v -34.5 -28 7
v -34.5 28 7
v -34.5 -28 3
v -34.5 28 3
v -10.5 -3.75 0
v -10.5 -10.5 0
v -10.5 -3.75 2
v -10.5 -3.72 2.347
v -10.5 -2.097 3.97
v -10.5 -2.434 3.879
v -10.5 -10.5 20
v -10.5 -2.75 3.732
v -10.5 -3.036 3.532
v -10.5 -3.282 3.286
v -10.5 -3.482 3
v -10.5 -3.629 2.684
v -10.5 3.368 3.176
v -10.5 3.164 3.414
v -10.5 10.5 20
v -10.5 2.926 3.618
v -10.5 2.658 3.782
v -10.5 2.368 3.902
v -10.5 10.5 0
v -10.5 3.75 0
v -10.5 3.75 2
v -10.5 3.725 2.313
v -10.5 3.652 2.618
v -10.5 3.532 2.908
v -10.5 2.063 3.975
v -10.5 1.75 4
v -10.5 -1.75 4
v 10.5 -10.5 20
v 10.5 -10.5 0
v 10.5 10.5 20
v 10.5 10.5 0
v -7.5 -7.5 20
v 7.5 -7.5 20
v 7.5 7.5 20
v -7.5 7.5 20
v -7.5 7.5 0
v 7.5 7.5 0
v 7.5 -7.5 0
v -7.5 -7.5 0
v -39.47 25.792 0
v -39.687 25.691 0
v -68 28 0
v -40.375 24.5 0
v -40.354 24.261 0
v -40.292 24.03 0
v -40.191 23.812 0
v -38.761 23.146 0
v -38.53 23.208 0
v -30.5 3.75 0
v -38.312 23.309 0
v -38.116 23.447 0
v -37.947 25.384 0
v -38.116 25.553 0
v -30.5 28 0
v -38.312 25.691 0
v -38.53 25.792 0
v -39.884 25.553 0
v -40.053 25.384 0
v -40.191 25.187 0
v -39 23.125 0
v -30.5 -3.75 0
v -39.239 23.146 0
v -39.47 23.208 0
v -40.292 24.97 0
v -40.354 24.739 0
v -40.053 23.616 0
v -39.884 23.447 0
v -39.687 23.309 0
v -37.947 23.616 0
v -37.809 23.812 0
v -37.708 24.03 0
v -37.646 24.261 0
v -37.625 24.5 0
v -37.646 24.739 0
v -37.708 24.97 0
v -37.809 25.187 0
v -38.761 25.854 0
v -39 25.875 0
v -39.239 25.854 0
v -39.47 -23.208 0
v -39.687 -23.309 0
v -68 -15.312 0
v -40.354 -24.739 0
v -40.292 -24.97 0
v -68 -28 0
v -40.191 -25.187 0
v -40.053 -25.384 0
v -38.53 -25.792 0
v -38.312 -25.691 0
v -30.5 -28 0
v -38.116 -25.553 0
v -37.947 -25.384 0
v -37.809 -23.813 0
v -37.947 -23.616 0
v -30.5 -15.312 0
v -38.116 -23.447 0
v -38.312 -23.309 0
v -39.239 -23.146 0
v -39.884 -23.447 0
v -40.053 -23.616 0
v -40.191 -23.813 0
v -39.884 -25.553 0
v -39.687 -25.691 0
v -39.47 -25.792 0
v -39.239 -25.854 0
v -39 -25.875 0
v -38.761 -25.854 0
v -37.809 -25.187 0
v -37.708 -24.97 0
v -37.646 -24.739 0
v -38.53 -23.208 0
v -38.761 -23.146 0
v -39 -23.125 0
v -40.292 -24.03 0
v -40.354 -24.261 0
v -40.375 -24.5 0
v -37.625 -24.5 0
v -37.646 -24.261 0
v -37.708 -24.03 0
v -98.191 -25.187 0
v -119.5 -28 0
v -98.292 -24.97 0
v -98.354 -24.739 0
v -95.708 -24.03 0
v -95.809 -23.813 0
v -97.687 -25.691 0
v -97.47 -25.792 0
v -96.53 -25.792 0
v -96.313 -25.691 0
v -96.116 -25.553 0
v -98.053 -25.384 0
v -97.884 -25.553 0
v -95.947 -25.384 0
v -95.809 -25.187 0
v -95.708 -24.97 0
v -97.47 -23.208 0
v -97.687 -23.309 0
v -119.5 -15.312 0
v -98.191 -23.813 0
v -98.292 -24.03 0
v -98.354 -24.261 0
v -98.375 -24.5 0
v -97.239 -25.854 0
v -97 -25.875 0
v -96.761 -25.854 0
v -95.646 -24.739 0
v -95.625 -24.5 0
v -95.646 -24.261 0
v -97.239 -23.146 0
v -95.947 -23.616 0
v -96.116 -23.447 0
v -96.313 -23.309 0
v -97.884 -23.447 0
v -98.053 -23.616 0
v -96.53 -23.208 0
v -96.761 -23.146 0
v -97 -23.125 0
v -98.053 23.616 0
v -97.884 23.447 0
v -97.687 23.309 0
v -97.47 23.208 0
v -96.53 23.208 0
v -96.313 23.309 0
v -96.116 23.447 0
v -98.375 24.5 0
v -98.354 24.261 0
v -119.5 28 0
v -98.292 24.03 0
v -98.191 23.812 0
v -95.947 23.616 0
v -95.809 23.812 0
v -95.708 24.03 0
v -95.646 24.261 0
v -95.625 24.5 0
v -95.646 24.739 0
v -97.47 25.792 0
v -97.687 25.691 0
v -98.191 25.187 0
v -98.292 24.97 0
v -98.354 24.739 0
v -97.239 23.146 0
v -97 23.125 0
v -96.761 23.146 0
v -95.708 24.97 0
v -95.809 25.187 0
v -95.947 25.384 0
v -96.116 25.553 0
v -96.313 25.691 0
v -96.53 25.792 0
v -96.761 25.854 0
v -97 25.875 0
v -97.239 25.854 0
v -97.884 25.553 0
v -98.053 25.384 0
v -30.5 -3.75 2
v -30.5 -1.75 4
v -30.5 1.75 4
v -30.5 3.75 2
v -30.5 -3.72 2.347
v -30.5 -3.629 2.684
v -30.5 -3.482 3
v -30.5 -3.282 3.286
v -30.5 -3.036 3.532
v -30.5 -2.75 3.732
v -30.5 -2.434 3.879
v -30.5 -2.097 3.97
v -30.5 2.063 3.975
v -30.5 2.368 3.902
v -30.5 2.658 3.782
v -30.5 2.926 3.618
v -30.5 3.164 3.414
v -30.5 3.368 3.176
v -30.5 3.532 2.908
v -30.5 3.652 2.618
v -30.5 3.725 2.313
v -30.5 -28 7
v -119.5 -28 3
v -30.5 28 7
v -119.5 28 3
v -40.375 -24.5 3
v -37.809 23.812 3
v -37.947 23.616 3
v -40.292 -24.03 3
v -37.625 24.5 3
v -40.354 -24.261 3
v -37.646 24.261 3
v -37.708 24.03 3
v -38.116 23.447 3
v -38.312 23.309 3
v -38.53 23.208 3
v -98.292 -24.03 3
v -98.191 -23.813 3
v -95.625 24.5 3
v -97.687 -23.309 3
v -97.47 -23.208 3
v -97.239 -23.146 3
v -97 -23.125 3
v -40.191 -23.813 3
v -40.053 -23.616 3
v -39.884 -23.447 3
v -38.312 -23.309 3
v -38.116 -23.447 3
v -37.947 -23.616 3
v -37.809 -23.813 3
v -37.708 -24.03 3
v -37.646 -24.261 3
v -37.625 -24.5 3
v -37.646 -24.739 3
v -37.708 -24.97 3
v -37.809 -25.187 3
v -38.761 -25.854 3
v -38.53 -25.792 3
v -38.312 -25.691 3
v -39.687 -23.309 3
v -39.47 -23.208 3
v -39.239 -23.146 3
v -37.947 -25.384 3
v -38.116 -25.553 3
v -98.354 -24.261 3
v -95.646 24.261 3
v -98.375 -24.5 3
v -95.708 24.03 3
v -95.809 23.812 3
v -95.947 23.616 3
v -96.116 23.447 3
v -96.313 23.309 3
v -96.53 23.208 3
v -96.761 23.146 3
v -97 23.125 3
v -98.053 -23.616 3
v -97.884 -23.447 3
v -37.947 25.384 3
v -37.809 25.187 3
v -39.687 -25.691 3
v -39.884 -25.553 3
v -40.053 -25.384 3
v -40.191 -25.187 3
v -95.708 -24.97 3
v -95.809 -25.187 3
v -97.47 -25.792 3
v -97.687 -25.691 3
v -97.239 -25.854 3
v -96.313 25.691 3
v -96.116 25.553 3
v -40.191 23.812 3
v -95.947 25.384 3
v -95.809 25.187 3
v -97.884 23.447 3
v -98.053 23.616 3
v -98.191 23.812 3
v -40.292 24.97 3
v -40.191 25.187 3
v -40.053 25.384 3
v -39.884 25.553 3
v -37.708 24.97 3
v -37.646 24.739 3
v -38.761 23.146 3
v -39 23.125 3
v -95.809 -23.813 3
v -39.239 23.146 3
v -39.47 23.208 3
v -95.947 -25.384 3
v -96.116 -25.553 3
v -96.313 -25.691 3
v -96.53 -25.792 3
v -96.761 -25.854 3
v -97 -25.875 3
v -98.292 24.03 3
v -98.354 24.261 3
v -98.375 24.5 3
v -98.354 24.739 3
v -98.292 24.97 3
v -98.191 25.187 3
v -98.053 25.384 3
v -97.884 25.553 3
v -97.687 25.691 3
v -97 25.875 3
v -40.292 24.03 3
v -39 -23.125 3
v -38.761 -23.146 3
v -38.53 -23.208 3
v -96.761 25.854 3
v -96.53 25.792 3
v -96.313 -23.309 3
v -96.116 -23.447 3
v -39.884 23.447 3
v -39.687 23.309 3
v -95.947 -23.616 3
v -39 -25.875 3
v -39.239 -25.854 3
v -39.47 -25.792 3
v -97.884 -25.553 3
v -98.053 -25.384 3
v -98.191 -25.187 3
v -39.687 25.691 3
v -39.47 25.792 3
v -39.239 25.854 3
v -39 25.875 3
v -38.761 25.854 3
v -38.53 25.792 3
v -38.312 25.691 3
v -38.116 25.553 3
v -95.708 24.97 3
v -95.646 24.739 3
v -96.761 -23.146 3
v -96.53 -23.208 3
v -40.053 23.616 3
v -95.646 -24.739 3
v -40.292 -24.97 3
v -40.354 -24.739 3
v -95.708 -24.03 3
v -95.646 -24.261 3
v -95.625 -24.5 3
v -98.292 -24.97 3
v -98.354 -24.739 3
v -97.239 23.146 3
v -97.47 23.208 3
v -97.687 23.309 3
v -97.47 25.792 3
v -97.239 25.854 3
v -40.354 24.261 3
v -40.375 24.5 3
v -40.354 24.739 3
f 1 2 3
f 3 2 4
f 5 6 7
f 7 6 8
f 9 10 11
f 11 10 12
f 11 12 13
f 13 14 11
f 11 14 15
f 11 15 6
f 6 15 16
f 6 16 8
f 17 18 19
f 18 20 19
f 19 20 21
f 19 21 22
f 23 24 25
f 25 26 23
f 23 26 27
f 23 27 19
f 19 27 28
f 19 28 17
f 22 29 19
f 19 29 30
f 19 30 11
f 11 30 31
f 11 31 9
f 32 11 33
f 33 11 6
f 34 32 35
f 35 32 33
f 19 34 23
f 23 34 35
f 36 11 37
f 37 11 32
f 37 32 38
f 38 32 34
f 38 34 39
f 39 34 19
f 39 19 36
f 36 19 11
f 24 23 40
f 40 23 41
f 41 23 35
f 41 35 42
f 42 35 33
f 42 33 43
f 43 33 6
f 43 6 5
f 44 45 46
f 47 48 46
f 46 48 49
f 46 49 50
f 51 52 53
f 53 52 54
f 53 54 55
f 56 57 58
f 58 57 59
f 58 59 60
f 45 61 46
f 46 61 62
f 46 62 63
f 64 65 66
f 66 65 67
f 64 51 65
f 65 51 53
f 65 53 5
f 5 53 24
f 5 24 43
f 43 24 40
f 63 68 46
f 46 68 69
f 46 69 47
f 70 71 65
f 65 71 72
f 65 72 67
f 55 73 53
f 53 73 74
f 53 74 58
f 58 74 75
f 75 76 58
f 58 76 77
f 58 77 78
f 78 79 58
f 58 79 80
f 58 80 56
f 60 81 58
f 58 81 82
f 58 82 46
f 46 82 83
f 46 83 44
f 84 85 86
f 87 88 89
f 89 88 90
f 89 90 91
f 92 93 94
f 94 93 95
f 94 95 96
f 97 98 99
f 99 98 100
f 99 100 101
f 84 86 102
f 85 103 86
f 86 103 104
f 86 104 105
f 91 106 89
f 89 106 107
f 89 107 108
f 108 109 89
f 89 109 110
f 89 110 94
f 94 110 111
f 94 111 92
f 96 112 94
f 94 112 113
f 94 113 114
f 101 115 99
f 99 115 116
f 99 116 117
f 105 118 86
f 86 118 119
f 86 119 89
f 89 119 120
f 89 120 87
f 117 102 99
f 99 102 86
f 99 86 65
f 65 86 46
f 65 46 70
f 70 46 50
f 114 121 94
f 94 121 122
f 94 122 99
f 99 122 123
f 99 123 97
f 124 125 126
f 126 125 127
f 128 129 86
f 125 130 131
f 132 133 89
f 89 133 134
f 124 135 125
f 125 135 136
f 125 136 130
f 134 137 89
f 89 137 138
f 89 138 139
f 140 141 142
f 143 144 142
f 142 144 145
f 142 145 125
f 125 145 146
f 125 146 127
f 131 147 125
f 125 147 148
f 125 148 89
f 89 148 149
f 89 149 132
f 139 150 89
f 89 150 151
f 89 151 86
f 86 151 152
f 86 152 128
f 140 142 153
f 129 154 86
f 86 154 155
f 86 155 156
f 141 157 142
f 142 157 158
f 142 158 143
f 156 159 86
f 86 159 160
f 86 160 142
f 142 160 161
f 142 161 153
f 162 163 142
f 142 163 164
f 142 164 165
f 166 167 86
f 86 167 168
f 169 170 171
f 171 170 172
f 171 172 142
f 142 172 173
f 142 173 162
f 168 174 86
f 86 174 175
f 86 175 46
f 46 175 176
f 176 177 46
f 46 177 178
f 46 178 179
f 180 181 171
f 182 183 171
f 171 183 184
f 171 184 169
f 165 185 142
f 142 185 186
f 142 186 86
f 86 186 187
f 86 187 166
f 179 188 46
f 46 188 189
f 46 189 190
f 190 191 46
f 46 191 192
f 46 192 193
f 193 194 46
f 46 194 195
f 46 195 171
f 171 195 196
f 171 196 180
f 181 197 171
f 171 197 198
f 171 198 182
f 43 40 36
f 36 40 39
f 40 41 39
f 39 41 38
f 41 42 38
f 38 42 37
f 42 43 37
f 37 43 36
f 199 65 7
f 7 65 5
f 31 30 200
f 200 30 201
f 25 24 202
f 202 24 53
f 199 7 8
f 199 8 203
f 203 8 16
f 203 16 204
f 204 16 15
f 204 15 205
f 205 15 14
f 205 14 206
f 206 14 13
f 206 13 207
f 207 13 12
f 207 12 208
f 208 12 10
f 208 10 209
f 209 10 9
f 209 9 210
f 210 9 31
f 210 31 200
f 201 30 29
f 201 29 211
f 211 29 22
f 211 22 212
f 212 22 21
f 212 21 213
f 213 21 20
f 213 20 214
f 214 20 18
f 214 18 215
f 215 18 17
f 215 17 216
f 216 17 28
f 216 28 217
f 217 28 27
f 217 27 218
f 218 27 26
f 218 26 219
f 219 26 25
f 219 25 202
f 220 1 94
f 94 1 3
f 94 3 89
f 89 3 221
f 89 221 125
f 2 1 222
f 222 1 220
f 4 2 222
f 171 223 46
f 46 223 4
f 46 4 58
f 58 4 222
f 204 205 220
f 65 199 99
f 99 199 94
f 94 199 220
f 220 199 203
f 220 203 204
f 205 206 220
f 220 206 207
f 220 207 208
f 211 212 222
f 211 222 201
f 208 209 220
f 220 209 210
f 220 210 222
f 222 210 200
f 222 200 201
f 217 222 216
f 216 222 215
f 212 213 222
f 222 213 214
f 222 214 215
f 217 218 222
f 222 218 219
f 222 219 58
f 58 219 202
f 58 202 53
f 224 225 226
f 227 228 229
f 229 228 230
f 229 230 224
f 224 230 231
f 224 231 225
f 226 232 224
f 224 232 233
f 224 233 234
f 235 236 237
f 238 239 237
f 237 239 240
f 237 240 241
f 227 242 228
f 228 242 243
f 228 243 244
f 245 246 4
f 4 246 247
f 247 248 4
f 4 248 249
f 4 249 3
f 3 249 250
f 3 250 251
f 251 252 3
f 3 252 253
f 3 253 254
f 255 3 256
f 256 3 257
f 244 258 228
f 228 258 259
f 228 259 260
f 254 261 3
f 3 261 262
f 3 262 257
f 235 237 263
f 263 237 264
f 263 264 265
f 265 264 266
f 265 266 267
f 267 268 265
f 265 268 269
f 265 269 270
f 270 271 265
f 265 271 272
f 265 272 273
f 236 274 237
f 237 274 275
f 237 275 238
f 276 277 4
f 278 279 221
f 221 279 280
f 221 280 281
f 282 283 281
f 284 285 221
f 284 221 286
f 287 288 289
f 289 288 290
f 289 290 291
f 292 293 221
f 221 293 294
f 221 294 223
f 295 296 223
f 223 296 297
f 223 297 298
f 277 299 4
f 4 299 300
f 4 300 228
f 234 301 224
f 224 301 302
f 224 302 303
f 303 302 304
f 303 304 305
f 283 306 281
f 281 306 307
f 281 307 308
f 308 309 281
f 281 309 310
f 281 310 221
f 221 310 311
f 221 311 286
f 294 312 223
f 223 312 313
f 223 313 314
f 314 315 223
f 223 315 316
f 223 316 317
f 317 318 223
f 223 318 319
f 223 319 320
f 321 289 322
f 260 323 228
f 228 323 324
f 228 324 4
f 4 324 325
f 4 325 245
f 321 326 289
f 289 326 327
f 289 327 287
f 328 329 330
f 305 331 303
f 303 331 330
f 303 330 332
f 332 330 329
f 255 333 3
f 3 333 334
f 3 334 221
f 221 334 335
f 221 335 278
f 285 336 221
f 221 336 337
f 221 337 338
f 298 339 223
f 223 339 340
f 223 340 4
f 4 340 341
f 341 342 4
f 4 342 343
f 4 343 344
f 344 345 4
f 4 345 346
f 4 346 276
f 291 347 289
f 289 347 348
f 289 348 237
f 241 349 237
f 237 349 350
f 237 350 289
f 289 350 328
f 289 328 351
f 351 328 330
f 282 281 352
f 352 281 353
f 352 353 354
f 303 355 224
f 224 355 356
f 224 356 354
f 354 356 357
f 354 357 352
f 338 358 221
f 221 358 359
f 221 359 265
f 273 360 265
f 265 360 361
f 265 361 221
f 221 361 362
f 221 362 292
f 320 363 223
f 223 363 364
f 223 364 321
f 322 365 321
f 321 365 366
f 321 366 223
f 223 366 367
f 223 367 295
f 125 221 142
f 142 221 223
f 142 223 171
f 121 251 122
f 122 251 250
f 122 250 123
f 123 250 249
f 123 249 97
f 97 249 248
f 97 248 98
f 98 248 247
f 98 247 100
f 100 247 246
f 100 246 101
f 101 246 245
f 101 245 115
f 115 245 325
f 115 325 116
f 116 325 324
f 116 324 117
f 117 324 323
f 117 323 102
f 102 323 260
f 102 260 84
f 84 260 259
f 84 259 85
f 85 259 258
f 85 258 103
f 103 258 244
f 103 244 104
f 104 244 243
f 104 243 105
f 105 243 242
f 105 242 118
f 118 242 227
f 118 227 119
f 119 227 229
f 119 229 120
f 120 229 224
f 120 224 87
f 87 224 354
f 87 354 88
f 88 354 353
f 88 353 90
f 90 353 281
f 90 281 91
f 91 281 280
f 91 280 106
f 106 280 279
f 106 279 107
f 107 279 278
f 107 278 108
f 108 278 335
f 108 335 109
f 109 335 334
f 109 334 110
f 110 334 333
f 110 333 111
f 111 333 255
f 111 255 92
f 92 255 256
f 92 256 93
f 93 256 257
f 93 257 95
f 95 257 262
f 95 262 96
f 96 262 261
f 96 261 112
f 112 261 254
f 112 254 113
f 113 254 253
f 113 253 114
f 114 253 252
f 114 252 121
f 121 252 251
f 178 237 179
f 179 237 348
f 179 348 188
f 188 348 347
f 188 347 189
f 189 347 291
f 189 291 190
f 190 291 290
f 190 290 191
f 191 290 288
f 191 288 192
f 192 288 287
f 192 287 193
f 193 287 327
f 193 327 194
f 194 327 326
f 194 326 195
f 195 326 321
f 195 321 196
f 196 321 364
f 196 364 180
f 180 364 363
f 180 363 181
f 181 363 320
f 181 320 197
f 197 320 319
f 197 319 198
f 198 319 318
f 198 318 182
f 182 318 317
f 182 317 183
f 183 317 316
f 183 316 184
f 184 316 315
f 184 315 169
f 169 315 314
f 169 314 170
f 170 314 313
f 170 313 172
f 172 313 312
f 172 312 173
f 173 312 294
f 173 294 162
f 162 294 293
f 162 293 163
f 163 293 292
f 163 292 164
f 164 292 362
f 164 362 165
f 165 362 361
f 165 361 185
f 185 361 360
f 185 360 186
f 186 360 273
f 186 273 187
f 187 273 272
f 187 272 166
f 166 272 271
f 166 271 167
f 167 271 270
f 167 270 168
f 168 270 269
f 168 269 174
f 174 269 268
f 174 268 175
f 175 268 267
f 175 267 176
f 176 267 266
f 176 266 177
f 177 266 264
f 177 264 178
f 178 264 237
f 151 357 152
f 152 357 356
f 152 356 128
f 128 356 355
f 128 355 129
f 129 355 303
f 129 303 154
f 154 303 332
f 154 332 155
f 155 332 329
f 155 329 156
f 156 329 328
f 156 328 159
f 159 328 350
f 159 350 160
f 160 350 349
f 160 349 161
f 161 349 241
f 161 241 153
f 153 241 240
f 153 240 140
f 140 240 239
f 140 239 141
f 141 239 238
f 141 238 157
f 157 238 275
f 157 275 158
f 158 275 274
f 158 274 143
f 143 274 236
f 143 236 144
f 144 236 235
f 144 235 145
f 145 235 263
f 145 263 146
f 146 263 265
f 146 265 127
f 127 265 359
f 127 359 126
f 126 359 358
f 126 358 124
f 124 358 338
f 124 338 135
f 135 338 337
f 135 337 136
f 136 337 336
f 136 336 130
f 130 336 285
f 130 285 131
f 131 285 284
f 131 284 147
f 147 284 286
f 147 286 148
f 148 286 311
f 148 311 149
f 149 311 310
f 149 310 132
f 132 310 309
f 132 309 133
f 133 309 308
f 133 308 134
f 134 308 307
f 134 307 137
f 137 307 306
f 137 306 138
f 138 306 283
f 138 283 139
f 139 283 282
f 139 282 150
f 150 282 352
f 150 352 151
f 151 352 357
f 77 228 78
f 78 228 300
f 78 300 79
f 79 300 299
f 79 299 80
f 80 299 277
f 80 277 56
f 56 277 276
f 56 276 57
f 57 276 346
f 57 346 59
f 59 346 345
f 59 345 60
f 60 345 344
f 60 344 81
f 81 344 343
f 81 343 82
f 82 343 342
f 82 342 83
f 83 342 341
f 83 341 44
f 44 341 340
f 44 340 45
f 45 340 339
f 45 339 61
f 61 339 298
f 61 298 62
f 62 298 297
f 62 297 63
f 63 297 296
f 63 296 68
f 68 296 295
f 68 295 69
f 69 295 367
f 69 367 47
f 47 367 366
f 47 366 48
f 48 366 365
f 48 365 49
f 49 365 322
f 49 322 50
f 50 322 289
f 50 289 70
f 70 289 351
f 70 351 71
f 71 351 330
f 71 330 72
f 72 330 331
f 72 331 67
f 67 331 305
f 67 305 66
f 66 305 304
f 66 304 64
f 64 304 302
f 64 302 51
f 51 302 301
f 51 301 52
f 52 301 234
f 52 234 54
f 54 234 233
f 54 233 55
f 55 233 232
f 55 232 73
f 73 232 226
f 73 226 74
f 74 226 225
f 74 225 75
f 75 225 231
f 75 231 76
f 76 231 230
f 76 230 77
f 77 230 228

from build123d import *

# Parameters (mm, degrees)
SKETCH2_W           = 21
SKETCH2_H           = 21
BOSS_EXTRUDE1_DEPTH = 20
SKETCH3_W           = 15
SKETCH3_H           = 15
CUT_EXTRUDE1_DEPTH  = 20
SKETCH4_W           = 4
SKETCH4_H           = 7.5
BOSS_EXTRUDE2_DEPTH = 20
FILLET2_R           = 2
SKETCH5_W           = 7
SKETCH5_H           = 56
BOSS_EXTRUDE3_DEPTH = 4
SKETCH6_W           = 3
SKETCH6_H           = 56
BOSS_EXTRUDE4_DEPTH = 85
SKETCH8_R           = 1.375
CUT_EXTRUDE2_DEPTH  = 4


with BuildPart() as part:
    # Sketch2 → Boss-Extrude1 (new body)
    with BuildSketch(Plane.XY):
        Rectangle(SKETCH2_W, SKETCH2_H)
    extrude(amount=BOSS_EXTRUDE1_DEPTH)

    # Sketch3 → Cut-Extrude1 (cut)
    with BuildSketch(Plane.XY.offset(20)):
        Rectangle(SKETCH3_W, SKETCH3_H)
    extrude(amount=-CUT_EXTRUDE1_DEPTH, mode=Mode.SUBTRACT)

    # Sketch4 → Boss-Extrude2 (add)
    with BuildSketch(Plane.ZY.offset(10.5)):
        with Locations((2, 0)):
            Rectangle(SKETCH4_W, SKETCH4_H)
    extrude(amount=BOSS_EXTRUDE2_DEPTH)

    # Fillet2
    fillet2_edges = [part.edges().sort_by_distance(p)[0] for p in [
        (-20.5, -3.75, 4),
        (-20.5, 3.75, 4),
    ]]
    fillet(fillet2_edges, radius=FILLET2_R)

    # Sketch5 → Boss-Extrude3 (add)
    with BuildSketch(Plane.ZY.offset(30.5)):
        with Locations((3.5, 0)):
            Rectangle(SKETCH5_W, SKETCH5_H)
    extrude(amount=BOSS_EXTRUDE3_DEPTH)

    # Sketch6 → Boss-Extrude4 (add)
    with BuildSketch(Plane.ZY.offset(34.5)):
        with Locations((1.5, 0)):
            Rectangle(SKETCH6_W, SKETCH6_H)
    extrude(amount=BOSS_EXTRUDE4_DEPTH)

    # Sketch8 → Cut-Extrude2 (cut)
    with BuildSketch(Plane.XY.offset(3)):
        with Locations((-39, -24.5)):
            Circle(SKETCH8_R)
        with Locations((-39, 24.5)):
            Circle(SKETCH8_R)
        with Locations((-97, -24.5)):
            Circle(SKETCH8_R)
        with Locations((-97, 24.5)):
            Circle(SKETCH8_R)
    extrude(amount=-CUT_EXTRUDE2_DEPTH, mode=Mode.SUBTRACT)


solid = part.part
